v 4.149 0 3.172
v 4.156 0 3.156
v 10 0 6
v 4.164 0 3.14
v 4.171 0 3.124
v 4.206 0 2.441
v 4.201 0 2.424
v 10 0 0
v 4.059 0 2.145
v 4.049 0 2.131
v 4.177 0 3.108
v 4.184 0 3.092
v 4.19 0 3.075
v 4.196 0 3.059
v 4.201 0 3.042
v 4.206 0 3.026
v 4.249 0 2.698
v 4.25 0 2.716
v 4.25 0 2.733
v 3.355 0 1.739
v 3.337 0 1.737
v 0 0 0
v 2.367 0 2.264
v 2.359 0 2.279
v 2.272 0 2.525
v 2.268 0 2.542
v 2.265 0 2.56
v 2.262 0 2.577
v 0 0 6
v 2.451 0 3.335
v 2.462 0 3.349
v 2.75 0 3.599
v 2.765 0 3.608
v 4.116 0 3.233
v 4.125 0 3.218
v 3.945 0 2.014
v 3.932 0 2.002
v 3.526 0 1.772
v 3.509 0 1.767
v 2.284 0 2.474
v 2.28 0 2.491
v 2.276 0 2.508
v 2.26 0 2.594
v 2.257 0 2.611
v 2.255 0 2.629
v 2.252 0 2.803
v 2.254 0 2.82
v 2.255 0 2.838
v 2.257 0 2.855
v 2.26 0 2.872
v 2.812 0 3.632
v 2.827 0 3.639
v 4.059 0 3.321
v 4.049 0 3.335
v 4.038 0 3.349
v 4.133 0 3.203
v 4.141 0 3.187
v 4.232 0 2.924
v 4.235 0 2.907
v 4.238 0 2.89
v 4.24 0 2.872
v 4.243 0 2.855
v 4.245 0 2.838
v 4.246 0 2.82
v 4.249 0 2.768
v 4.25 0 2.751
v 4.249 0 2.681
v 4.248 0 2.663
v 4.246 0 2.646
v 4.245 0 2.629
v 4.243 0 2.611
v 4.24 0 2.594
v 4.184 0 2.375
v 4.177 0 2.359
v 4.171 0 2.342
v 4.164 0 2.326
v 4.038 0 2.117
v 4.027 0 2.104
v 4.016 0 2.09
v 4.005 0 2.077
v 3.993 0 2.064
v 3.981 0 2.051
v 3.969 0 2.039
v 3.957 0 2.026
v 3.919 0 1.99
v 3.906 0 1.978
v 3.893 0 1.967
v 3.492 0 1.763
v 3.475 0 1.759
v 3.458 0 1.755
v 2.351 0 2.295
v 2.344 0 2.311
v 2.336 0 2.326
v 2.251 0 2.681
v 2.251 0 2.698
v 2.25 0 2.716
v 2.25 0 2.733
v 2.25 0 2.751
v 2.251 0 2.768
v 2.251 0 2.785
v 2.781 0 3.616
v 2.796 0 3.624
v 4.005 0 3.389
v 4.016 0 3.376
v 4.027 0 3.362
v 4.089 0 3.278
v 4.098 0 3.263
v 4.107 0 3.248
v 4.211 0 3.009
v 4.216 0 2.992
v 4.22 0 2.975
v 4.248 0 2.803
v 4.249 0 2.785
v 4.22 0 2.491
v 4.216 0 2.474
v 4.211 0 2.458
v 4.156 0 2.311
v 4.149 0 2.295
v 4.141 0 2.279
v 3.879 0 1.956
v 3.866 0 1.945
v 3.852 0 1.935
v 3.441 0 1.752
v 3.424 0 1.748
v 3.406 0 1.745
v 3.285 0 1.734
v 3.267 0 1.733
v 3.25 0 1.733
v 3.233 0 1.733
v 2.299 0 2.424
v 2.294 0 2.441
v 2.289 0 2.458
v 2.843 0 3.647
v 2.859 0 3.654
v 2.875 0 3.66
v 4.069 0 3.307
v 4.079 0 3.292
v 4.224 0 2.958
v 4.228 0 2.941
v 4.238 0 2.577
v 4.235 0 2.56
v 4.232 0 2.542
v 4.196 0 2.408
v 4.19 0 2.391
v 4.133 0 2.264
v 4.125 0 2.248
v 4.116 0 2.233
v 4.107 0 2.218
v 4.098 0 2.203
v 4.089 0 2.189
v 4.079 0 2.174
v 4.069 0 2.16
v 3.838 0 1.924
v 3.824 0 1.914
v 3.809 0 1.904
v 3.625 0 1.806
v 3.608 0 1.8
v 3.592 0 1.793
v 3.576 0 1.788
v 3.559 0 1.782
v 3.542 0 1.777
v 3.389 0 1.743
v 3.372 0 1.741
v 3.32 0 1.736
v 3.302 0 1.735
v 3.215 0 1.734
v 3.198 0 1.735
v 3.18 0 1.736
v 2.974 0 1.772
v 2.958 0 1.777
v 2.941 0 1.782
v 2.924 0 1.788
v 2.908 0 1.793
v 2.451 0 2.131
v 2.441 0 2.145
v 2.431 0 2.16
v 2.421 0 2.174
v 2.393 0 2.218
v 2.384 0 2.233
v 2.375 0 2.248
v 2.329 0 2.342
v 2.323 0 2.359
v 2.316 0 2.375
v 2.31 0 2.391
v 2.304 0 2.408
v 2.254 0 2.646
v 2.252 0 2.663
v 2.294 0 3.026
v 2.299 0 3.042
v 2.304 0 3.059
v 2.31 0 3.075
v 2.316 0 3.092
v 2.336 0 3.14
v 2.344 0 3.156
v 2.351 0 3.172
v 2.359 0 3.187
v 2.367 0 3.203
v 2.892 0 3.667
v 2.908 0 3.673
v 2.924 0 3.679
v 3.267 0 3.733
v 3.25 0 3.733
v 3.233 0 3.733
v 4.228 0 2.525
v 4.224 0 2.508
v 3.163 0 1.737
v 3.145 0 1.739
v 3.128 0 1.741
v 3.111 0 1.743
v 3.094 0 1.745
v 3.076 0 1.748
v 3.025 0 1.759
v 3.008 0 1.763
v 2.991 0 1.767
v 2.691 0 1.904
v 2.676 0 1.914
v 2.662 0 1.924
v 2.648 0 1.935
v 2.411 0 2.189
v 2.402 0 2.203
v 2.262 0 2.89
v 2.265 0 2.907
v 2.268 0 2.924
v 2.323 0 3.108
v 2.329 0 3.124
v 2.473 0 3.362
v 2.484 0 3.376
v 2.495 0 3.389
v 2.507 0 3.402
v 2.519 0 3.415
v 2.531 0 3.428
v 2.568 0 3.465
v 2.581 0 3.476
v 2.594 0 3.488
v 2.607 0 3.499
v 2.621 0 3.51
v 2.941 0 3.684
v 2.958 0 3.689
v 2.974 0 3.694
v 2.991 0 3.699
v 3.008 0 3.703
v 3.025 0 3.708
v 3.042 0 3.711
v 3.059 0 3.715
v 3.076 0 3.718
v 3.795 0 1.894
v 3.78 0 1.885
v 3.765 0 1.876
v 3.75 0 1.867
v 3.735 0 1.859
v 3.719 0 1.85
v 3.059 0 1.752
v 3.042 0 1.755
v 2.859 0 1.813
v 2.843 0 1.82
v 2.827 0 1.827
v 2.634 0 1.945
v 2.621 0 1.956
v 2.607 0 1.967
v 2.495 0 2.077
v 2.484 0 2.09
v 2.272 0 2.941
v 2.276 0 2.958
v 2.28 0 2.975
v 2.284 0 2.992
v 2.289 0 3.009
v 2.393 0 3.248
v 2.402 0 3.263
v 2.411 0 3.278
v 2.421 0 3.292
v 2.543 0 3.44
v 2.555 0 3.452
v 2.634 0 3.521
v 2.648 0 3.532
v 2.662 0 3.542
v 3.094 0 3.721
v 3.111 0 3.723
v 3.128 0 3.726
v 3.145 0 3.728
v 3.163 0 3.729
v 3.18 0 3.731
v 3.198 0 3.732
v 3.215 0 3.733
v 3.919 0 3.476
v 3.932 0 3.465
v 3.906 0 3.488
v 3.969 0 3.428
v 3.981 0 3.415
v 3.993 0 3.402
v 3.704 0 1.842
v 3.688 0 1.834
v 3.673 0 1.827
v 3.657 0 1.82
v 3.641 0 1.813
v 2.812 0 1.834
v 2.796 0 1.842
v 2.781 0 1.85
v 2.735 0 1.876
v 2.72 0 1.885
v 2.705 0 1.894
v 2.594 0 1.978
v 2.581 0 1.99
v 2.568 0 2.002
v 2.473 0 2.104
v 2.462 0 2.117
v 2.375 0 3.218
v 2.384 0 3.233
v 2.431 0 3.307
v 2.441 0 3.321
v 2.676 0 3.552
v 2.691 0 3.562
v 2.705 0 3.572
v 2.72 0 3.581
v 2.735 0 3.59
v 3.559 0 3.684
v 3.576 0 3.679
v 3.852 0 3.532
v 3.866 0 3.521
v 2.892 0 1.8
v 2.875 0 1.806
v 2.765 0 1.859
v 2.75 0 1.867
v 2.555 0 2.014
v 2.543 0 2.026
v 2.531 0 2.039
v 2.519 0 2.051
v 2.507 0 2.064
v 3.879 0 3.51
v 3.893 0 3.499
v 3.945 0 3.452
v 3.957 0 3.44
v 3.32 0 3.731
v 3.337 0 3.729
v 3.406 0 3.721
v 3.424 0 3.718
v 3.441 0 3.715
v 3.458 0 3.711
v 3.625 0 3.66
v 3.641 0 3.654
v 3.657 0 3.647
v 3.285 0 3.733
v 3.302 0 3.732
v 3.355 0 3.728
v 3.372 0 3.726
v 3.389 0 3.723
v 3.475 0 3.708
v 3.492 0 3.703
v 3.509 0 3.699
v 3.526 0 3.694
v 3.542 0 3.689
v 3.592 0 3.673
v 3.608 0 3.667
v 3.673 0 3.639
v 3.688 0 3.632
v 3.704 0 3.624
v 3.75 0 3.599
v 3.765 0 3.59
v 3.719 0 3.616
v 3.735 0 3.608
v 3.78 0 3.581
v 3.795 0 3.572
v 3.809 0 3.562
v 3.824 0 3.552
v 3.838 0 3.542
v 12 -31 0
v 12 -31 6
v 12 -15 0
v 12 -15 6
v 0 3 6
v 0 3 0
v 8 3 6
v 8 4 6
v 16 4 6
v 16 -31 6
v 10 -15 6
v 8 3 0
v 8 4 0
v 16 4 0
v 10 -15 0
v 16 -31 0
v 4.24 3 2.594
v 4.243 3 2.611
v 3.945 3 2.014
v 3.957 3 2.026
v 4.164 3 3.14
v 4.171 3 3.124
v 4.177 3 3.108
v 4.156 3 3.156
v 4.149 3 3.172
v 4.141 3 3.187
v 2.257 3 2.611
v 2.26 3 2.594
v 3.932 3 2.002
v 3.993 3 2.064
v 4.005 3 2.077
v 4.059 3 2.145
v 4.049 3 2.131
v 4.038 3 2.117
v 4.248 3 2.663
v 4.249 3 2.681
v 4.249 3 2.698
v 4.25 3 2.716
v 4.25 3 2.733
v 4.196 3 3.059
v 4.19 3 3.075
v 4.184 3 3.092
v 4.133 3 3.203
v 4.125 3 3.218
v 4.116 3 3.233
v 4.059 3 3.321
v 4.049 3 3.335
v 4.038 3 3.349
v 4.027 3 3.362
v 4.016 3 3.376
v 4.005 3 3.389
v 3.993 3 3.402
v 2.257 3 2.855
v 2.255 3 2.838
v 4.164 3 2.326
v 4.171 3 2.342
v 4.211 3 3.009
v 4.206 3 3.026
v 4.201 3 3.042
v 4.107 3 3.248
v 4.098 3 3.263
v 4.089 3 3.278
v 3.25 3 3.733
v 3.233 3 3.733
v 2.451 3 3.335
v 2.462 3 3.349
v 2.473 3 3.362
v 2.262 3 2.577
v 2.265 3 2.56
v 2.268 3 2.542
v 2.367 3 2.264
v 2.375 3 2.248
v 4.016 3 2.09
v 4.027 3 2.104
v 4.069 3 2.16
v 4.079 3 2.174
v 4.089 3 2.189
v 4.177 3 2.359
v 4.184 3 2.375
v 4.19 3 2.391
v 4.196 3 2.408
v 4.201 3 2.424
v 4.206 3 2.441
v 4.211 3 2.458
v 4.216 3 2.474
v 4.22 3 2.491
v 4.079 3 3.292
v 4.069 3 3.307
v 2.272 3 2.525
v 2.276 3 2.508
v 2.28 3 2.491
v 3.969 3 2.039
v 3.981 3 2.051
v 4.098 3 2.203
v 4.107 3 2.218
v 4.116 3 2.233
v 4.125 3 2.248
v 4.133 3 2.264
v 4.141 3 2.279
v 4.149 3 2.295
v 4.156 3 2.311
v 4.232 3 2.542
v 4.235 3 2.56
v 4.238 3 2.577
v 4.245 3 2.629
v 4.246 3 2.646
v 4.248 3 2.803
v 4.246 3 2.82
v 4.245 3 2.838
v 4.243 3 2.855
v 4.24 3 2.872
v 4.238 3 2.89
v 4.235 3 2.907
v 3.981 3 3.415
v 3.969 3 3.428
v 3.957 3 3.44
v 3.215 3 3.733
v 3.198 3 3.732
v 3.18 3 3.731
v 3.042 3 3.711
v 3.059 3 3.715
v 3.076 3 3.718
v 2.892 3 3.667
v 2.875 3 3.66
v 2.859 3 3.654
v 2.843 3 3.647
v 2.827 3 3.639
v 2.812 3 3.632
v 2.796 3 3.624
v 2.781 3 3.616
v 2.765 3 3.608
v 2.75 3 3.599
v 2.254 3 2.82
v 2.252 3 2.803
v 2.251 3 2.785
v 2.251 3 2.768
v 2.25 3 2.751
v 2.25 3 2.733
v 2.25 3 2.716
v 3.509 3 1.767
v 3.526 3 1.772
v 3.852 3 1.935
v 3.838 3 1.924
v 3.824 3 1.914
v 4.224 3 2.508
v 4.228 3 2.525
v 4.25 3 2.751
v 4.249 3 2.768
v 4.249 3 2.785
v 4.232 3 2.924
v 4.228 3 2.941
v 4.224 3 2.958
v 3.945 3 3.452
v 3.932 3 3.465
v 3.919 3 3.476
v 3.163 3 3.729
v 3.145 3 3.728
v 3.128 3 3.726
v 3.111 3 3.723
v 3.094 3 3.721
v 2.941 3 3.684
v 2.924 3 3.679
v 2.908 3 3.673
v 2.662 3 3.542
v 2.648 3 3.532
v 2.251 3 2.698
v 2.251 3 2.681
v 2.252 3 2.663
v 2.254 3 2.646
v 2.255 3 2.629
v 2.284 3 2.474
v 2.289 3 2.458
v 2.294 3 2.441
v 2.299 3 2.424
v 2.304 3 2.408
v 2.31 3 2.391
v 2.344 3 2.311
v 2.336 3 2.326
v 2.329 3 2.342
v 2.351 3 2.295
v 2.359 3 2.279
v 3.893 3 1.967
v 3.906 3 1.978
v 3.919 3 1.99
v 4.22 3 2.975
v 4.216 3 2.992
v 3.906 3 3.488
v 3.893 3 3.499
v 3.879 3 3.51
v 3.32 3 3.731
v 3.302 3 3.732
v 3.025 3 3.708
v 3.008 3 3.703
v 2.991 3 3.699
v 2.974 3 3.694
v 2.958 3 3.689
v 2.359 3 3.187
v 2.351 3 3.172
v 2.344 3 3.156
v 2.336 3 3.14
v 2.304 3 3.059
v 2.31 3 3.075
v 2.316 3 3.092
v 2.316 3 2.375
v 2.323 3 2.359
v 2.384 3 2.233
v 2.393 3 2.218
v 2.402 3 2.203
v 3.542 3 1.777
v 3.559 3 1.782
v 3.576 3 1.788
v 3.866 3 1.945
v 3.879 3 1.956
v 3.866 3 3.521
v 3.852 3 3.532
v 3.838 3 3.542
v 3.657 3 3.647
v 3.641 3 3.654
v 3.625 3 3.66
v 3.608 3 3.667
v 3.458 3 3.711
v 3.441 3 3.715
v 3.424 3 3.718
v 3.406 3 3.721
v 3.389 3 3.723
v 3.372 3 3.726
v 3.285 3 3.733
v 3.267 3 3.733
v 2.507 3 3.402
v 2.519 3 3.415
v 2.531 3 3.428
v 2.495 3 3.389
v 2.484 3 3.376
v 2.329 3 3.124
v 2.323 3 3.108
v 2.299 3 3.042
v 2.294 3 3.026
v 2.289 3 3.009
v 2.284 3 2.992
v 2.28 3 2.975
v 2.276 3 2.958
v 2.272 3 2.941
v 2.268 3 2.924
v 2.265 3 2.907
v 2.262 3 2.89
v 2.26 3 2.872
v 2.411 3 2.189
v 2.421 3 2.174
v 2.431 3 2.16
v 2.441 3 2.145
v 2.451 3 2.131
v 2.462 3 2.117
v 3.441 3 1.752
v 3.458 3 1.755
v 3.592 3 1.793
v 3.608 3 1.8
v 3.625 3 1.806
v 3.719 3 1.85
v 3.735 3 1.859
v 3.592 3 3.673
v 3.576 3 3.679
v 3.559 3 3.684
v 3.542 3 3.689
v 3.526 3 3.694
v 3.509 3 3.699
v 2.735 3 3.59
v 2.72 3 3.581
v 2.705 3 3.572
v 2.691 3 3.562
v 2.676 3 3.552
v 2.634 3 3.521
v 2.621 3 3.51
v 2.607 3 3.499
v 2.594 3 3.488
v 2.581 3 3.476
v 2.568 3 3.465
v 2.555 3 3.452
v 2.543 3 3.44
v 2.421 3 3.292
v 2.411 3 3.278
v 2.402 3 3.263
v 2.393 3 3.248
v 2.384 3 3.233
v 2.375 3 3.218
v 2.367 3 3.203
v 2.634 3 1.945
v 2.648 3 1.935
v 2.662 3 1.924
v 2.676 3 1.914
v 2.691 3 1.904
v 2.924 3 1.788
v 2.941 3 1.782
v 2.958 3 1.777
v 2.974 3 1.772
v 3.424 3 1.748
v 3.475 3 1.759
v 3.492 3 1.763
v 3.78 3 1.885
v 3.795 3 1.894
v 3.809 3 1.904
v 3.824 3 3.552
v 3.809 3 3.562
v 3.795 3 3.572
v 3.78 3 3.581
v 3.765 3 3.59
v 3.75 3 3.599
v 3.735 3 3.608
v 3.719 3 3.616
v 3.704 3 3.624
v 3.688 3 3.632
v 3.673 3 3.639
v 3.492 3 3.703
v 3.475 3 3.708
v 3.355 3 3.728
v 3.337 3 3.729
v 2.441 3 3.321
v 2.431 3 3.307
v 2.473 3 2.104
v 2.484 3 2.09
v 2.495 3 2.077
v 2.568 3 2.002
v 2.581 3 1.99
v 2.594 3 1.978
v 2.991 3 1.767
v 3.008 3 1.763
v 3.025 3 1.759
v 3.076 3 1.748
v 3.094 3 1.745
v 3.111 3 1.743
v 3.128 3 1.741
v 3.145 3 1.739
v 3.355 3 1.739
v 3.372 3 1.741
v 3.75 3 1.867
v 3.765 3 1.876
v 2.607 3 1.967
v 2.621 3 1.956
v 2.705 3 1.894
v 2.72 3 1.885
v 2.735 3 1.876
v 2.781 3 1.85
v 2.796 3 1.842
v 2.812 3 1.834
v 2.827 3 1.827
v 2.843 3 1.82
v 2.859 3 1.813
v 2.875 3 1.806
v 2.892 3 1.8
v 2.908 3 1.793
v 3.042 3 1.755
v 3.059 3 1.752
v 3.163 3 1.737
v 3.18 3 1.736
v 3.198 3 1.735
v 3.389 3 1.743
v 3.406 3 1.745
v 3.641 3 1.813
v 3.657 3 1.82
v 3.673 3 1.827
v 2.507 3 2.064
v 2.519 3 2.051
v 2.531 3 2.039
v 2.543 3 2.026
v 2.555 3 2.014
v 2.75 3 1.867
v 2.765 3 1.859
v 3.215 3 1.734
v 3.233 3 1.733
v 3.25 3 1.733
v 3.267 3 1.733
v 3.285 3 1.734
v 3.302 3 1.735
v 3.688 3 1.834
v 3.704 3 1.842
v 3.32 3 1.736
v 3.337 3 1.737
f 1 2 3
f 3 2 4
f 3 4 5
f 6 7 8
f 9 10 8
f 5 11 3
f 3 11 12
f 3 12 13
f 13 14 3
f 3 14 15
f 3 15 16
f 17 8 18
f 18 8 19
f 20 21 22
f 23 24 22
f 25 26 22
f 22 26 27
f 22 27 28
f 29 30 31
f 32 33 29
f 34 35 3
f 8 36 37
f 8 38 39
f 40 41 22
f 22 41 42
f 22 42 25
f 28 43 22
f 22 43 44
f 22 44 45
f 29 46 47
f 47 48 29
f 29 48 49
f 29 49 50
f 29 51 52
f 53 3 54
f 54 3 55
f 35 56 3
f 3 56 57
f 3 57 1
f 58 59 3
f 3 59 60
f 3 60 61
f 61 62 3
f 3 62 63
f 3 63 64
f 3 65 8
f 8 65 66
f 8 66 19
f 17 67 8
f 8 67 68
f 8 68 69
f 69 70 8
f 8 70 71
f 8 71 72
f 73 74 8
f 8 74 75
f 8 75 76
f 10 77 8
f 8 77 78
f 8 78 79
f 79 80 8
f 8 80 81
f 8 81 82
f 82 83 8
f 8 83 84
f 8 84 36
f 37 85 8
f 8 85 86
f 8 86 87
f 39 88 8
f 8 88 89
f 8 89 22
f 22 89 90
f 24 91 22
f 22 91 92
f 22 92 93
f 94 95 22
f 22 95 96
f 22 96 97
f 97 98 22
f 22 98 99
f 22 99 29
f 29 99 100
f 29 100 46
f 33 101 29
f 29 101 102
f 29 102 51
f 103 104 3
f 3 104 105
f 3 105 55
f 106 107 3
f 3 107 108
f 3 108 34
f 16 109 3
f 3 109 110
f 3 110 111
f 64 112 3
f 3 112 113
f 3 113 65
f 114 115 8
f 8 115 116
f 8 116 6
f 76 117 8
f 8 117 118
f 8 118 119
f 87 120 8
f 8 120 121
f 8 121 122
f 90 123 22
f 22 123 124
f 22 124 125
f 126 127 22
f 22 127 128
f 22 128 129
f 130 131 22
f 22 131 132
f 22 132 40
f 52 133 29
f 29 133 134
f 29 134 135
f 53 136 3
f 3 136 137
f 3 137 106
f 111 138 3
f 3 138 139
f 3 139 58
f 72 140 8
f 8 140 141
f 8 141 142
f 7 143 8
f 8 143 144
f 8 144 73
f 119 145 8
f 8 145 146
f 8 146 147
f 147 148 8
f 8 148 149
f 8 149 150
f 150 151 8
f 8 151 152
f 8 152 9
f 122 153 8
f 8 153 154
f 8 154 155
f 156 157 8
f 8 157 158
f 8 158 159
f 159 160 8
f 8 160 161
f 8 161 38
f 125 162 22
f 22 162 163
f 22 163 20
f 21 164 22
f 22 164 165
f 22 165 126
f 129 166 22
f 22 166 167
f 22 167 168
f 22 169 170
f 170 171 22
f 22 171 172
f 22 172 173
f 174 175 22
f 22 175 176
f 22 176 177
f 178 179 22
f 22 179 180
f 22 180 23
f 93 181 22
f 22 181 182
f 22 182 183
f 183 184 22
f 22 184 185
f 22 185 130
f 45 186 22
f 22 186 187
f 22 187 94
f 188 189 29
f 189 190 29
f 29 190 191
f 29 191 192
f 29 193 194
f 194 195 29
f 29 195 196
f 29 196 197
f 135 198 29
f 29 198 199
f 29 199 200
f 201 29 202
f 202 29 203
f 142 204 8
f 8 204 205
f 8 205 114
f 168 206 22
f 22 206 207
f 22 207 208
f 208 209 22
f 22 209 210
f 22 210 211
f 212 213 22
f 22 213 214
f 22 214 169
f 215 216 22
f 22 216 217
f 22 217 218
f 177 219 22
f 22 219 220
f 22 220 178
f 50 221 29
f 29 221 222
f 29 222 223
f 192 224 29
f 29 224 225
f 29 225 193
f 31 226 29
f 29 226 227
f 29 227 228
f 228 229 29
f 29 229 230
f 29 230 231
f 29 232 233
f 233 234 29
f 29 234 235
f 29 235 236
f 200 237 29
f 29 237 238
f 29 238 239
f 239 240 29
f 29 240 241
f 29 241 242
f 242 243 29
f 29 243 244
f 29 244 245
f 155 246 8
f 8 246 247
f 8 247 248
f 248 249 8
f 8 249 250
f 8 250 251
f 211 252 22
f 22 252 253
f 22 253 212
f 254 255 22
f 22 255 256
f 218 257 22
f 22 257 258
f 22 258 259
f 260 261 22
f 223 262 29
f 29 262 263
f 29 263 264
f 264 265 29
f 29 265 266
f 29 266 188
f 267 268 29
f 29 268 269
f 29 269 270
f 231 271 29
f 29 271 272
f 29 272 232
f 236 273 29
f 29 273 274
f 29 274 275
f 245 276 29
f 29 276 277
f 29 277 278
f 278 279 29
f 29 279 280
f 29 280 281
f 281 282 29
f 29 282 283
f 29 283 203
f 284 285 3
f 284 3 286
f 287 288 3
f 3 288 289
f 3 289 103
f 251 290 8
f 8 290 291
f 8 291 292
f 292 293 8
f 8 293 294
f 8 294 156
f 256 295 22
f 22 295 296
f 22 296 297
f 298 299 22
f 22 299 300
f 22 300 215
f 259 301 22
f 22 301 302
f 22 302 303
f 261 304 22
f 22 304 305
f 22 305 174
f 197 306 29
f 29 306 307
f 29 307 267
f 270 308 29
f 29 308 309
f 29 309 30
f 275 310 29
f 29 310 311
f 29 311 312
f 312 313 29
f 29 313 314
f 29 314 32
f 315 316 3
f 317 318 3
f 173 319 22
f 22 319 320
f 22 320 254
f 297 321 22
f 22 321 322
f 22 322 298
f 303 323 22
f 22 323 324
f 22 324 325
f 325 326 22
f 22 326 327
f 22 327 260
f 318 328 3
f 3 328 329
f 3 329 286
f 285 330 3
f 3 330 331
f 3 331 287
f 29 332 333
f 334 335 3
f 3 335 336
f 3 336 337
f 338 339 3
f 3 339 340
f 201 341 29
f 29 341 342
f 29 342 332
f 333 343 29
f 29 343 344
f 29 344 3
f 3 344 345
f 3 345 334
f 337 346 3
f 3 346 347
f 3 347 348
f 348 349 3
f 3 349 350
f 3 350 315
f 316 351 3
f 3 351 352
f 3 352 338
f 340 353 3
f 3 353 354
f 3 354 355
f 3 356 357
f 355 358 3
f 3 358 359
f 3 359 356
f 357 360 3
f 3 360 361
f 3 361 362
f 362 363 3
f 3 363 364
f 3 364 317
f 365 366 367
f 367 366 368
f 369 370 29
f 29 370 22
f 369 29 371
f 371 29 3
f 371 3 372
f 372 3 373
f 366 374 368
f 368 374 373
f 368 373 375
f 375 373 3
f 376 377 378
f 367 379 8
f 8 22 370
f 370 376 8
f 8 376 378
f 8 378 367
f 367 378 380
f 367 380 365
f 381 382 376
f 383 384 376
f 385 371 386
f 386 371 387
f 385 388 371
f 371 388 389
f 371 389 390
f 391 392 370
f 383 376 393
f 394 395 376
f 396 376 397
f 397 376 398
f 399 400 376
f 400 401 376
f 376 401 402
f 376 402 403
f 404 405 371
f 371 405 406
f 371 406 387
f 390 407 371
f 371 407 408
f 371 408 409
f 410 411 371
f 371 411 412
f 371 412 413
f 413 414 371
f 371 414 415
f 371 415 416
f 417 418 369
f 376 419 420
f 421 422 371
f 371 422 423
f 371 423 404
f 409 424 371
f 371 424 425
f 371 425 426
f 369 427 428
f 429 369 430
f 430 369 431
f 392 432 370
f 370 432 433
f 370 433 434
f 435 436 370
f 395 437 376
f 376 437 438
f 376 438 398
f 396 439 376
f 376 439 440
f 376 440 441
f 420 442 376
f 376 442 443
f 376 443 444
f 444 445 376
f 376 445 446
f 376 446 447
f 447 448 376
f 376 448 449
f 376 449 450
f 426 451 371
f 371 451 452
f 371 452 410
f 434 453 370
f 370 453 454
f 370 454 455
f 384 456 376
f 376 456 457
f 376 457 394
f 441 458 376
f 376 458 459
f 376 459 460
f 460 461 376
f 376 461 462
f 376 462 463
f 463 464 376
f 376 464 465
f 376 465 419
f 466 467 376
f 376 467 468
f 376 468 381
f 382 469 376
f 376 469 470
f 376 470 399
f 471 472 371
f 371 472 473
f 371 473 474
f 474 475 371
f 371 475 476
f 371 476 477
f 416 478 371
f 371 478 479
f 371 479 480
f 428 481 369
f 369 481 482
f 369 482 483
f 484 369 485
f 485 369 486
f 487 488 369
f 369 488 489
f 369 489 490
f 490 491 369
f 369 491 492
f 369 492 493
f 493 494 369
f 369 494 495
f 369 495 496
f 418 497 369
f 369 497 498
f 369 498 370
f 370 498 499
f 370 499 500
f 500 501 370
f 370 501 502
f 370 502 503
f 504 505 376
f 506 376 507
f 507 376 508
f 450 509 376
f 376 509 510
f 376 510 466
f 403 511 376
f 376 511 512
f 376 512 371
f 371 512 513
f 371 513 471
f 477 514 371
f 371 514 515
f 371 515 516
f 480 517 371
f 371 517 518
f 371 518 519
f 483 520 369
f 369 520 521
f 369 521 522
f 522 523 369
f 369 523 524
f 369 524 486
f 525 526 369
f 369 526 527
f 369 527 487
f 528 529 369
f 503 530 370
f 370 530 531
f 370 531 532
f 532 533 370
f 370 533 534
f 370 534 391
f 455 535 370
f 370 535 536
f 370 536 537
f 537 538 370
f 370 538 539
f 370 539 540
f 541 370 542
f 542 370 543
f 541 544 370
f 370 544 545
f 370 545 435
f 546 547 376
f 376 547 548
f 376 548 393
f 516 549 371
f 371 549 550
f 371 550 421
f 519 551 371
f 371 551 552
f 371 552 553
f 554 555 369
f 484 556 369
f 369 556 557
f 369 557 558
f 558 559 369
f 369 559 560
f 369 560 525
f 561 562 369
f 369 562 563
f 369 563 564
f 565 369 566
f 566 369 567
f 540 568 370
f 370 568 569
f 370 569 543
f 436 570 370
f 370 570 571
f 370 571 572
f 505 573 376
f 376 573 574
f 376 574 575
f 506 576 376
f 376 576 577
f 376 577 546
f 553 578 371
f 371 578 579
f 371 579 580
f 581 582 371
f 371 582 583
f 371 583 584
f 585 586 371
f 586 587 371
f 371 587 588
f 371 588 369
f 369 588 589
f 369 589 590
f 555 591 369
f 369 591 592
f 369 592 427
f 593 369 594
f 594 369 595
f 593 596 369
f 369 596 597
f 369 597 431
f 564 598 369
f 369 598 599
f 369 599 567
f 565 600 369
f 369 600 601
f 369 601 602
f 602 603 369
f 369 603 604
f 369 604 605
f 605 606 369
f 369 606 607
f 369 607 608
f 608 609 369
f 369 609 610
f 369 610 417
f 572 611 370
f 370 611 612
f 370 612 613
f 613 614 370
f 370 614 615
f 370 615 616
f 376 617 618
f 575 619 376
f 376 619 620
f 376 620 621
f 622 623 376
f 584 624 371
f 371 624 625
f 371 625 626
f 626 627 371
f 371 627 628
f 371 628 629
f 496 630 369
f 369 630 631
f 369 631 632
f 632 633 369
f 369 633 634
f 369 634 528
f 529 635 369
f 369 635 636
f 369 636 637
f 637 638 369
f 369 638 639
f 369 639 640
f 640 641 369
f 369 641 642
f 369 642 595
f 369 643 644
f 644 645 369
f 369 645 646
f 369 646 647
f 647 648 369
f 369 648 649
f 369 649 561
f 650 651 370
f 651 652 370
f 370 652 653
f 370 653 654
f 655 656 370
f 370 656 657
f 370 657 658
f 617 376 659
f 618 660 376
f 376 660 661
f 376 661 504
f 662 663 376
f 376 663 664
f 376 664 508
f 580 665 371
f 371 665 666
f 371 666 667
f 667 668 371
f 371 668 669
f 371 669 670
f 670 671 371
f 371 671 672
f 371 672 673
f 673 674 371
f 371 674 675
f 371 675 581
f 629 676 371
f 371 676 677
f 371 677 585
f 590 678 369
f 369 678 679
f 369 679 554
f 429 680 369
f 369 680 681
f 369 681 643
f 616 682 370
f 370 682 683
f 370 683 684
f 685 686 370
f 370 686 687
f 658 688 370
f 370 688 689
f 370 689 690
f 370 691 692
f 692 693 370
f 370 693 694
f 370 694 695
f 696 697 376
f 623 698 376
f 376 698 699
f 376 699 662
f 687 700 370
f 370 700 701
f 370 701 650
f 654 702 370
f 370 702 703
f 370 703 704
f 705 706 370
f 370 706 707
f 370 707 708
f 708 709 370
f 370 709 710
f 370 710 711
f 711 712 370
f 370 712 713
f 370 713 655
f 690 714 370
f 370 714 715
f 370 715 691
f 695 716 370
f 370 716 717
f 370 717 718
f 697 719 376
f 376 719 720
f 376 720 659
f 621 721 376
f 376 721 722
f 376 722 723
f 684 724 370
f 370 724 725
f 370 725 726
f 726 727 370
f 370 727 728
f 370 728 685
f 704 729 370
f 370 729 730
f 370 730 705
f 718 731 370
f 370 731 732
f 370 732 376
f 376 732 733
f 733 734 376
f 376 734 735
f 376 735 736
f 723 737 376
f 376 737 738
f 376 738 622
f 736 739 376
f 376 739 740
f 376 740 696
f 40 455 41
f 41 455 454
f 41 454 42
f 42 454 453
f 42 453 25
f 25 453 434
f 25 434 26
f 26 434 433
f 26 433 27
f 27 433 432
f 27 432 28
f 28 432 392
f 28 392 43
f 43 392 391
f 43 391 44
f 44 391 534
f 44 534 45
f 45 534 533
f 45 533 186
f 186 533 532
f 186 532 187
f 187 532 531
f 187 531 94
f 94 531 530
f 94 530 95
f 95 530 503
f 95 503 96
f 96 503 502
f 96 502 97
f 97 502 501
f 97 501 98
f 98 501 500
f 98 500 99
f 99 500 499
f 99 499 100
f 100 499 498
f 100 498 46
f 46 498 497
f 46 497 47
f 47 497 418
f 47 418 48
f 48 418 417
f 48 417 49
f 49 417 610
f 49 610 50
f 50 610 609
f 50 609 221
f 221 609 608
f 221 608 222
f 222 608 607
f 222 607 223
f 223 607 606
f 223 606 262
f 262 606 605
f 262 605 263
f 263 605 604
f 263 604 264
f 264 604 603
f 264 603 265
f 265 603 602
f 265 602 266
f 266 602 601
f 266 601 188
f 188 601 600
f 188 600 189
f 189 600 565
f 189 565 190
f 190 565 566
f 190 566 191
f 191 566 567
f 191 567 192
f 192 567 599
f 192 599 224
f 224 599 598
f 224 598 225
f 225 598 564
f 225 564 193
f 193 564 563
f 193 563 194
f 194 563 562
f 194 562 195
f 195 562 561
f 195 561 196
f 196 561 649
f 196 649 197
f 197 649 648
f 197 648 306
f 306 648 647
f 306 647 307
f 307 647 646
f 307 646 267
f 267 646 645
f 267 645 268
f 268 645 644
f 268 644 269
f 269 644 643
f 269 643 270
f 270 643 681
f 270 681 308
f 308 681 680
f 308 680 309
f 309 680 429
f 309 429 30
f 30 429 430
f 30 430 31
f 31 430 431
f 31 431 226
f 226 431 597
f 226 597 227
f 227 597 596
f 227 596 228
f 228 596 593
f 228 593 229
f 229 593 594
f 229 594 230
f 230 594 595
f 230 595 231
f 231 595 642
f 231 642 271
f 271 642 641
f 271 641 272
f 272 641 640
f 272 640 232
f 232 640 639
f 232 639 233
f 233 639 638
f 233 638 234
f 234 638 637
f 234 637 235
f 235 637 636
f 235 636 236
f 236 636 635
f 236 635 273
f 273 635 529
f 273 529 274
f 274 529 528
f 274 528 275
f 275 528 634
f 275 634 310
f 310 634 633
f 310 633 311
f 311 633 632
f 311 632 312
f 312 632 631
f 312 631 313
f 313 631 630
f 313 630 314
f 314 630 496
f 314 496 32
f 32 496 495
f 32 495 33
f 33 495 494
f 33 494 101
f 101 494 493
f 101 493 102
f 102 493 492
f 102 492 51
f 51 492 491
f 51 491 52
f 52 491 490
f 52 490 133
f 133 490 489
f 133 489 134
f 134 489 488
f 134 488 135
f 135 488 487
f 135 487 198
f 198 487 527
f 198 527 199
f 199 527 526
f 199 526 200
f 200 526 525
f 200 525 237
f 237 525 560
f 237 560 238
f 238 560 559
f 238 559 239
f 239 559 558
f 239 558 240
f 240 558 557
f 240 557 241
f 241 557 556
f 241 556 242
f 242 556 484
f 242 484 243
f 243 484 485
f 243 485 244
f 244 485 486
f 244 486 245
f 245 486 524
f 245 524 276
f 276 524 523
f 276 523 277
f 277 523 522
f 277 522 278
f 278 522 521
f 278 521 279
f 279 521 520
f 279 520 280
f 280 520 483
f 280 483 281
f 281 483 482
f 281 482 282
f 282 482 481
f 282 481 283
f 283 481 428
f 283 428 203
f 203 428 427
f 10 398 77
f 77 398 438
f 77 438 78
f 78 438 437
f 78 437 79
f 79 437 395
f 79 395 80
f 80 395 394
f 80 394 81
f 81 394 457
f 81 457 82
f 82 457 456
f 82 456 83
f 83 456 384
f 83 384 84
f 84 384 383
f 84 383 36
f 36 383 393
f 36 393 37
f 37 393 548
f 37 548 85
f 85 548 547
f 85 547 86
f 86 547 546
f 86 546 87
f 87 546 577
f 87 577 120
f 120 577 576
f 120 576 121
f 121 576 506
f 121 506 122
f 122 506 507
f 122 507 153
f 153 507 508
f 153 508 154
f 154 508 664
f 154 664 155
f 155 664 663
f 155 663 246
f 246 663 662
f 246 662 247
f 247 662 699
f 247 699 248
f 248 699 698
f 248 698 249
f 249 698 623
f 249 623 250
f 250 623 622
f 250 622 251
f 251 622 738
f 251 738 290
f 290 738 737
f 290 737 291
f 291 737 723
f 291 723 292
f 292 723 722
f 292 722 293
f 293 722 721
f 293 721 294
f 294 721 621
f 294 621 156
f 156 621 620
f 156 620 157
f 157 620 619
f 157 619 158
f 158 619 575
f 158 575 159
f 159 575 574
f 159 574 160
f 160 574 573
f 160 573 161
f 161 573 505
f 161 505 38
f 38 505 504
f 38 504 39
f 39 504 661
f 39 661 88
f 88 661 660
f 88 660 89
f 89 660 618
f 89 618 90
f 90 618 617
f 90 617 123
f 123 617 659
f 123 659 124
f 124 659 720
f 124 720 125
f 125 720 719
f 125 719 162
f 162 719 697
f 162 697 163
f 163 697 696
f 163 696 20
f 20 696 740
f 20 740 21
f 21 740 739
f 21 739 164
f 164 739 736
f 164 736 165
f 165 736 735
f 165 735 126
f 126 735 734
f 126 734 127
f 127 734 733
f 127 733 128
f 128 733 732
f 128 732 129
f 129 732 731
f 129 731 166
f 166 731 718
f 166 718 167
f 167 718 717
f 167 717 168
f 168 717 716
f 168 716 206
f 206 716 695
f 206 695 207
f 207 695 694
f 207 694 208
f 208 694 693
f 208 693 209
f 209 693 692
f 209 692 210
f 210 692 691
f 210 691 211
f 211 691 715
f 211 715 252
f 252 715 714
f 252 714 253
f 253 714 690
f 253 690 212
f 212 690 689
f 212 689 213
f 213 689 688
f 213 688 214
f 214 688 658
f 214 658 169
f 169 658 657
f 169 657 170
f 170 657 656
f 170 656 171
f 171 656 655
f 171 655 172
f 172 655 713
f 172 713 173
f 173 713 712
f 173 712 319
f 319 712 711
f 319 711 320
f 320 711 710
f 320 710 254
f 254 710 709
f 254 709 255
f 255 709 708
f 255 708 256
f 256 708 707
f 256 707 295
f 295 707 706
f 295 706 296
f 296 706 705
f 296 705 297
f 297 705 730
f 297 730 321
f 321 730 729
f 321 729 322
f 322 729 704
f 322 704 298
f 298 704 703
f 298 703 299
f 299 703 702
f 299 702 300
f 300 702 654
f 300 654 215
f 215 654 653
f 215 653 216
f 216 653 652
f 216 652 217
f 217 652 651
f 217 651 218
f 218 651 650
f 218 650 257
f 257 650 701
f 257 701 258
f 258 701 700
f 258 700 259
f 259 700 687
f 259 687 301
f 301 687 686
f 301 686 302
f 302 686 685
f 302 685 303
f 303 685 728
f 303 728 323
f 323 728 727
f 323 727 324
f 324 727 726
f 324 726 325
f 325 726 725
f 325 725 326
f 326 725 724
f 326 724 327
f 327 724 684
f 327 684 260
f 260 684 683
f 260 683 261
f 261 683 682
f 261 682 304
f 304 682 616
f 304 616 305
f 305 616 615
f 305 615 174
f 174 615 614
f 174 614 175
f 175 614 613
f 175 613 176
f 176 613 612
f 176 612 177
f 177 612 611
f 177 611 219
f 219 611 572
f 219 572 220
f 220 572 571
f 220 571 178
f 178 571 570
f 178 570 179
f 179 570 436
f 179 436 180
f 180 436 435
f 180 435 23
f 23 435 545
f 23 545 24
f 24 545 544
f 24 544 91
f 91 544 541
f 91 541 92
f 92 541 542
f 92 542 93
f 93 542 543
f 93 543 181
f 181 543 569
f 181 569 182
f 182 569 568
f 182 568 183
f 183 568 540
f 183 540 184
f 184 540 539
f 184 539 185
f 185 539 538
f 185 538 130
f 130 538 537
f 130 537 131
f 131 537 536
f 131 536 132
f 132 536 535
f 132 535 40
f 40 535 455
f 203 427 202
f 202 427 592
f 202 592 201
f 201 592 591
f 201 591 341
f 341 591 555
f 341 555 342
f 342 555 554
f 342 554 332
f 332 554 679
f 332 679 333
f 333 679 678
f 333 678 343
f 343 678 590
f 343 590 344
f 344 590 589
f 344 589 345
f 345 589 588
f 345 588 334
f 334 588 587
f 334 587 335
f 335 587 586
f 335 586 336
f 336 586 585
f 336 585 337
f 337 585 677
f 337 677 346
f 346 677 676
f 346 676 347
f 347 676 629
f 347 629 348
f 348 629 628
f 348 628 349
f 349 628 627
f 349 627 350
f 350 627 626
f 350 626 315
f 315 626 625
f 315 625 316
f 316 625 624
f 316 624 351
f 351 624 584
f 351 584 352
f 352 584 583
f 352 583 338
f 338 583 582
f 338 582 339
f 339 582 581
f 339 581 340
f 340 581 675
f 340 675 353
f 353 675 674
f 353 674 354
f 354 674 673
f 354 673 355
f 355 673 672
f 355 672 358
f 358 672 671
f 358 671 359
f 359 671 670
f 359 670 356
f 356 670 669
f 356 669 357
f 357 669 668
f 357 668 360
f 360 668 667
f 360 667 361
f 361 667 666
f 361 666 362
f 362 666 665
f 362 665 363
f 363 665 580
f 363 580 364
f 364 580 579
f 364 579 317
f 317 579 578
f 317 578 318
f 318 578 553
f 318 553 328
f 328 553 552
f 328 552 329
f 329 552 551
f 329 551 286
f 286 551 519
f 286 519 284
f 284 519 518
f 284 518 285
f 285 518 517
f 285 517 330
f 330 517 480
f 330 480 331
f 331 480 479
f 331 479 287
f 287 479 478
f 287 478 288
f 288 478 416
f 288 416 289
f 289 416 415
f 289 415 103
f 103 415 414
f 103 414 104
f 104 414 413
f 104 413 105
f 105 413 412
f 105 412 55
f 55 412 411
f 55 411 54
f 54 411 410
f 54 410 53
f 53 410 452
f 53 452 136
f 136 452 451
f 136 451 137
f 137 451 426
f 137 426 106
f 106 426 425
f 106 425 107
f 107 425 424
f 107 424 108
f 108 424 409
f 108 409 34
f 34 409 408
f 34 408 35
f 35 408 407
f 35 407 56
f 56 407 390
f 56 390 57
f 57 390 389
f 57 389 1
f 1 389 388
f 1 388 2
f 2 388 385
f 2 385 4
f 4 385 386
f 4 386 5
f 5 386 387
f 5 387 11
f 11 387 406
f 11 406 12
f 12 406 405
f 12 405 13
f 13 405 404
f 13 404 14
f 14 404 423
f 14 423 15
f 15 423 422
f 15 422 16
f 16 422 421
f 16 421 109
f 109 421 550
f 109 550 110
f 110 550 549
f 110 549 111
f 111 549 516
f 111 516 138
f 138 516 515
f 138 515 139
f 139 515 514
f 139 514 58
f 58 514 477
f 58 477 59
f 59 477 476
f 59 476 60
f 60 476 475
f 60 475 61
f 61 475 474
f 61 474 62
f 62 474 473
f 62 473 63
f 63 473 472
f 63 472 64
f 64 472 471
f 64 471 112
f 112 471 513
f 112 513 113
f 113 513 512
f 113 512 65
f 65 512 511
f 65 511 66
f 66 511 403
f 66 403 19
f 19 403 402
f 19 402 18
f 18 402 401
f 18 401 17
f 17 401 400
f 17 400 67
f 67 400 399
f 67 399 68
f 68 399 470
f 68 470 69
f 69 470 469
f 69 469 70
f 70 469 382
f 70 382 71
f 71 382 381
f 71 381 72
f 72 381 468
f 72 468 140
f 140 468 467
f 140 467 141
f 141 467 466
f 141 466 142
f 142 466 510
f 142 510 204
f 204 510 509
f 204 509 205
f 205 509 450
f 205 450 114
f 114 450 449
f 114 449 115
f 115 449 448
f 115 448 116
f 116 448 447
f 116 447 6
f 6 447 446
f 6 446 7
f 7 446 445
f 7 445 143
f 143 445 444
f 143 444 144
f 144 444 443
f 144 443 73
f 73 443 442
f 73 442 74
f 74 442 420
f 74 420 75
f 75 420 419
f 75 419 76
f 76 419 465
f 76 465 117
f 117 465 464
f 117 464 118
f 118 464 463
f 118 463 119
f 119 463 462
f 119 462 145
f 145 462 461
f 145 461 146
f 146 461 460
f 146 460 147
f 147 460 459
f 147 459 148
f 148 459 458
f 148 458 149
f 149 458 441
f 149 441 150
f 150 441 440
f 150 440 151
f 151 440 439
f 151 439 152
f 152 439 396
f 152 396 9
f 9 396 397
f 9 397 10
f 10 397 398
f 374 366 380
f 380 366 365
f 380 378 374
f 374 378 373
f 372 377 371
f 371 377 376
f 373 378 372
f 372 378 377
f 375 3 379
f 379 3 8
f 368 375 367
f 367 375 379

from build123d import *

# Parameters (mm, degrees)
SKETCH1_W           = 15
SKETCH1_H           = 6
BOSS_EXTRUDE1_DEPTH = 3
CUT_EXTRUDE1_REACH  = 18.432
SKETCH2_R           = 1
SKETCH3_W           = 3
SKETCH3_H           = 6
BOSS_EXTRUDE2_DEPTH = 31
SKETCH4_W           = 6
SKETCH4_H           = 34
BOSS_EXTRUDE3_DEPTH = 1
SKETCH5_W           = 8
SKETCH5_H           = 6
BOSS_EXTRUDE4_DEPTH = 1
SKETCH6_W           = 2
SKETCH6_H           = 15
BOSS_EXTRUDE5_DEPTH = 6


with BuildPart() as part:
    # Sketch1 → Boss-Extrude1 (new body)
    with BuildSketch(Plane(origin=(0, 0, 0), x_dir=(1, 0, 0), z_dir=(0, 1, 0))):
        with Locations((7.5, -3)):
            Rectangle(SKETCH1_W, SKETCH1_H)
    extrude(amount=BOSS_EXTRUDE1_DEPTH)

    # Sketch2 → Cut-Extrude1 (cut, up to next)
    with BuildSketch(Plane(origin=(0, 3, 0), x_dir=(1, 0, 0), z_dir=(0, 1, 0)), mode=Mode.PRIVATE) as cut_extrude1_sk1:
        with Locations(Location((3.25, -2.733160164, 0), (0, 0, 270))):
            Circle(SKETCH2_R)
    cut_extrude1_tool1 = extrude(cut_extrude1_sk1.sketch, amount=-CUT_EXTRUDE1_REACH, mode=Mode.PRIVATE) & part.part
    add(cut_extrude1_tool1.solids().sort_by_distance((3.25, 3, 2.73316))[0], mode=Mode.SUBTRACT)

    # Sketch3 → Boss-Extrude2 (add)
    with BuildSketch(Plane.XZ):
        with Locations((13.5, 3)):
            Rectangle(SKETCH3_W, SKETCH3_H)
    extrude(amount=BOSS_EXTRUDE2_DEPTH)

    # Sketch4 → Boss-Extrude3 (add)
    with BuildSketch(Plane(origin=(15, 0, 0), x_dir=(0, 0, -1), z_dir=(1, 0, 0))):
        with Locations((-3, -14)):
            Rectangle(SKETCH4_W, SKETCH4_H)
    extrude(amount=BOSS_EXTRUDE3_DEPTH)

    # Sketch5 → Boss-Extrude4 (add)
    with BuildSketch(Plane(origin=(0, 3, 0), x_dir=(1, 0, 0), z_dir=(0, 1, 0))):
        with Locations((12, -3)):
            Rectangle(SKETCH5_W, SKETCH5_H)
    extrude(amount=BOSS_EXTRUDE4_DEPTH)

    # Sketch6 → Boss-Extrude5 (add)
    with BuildSketch(Plane.XY):
        with Locations((11, -7.5)):
            Rectangle(SKETCH6_W, SKETCH6_H)
    extrude(amount=BOSS_EXTRUDE5_DEPTH)


solid = part.part
